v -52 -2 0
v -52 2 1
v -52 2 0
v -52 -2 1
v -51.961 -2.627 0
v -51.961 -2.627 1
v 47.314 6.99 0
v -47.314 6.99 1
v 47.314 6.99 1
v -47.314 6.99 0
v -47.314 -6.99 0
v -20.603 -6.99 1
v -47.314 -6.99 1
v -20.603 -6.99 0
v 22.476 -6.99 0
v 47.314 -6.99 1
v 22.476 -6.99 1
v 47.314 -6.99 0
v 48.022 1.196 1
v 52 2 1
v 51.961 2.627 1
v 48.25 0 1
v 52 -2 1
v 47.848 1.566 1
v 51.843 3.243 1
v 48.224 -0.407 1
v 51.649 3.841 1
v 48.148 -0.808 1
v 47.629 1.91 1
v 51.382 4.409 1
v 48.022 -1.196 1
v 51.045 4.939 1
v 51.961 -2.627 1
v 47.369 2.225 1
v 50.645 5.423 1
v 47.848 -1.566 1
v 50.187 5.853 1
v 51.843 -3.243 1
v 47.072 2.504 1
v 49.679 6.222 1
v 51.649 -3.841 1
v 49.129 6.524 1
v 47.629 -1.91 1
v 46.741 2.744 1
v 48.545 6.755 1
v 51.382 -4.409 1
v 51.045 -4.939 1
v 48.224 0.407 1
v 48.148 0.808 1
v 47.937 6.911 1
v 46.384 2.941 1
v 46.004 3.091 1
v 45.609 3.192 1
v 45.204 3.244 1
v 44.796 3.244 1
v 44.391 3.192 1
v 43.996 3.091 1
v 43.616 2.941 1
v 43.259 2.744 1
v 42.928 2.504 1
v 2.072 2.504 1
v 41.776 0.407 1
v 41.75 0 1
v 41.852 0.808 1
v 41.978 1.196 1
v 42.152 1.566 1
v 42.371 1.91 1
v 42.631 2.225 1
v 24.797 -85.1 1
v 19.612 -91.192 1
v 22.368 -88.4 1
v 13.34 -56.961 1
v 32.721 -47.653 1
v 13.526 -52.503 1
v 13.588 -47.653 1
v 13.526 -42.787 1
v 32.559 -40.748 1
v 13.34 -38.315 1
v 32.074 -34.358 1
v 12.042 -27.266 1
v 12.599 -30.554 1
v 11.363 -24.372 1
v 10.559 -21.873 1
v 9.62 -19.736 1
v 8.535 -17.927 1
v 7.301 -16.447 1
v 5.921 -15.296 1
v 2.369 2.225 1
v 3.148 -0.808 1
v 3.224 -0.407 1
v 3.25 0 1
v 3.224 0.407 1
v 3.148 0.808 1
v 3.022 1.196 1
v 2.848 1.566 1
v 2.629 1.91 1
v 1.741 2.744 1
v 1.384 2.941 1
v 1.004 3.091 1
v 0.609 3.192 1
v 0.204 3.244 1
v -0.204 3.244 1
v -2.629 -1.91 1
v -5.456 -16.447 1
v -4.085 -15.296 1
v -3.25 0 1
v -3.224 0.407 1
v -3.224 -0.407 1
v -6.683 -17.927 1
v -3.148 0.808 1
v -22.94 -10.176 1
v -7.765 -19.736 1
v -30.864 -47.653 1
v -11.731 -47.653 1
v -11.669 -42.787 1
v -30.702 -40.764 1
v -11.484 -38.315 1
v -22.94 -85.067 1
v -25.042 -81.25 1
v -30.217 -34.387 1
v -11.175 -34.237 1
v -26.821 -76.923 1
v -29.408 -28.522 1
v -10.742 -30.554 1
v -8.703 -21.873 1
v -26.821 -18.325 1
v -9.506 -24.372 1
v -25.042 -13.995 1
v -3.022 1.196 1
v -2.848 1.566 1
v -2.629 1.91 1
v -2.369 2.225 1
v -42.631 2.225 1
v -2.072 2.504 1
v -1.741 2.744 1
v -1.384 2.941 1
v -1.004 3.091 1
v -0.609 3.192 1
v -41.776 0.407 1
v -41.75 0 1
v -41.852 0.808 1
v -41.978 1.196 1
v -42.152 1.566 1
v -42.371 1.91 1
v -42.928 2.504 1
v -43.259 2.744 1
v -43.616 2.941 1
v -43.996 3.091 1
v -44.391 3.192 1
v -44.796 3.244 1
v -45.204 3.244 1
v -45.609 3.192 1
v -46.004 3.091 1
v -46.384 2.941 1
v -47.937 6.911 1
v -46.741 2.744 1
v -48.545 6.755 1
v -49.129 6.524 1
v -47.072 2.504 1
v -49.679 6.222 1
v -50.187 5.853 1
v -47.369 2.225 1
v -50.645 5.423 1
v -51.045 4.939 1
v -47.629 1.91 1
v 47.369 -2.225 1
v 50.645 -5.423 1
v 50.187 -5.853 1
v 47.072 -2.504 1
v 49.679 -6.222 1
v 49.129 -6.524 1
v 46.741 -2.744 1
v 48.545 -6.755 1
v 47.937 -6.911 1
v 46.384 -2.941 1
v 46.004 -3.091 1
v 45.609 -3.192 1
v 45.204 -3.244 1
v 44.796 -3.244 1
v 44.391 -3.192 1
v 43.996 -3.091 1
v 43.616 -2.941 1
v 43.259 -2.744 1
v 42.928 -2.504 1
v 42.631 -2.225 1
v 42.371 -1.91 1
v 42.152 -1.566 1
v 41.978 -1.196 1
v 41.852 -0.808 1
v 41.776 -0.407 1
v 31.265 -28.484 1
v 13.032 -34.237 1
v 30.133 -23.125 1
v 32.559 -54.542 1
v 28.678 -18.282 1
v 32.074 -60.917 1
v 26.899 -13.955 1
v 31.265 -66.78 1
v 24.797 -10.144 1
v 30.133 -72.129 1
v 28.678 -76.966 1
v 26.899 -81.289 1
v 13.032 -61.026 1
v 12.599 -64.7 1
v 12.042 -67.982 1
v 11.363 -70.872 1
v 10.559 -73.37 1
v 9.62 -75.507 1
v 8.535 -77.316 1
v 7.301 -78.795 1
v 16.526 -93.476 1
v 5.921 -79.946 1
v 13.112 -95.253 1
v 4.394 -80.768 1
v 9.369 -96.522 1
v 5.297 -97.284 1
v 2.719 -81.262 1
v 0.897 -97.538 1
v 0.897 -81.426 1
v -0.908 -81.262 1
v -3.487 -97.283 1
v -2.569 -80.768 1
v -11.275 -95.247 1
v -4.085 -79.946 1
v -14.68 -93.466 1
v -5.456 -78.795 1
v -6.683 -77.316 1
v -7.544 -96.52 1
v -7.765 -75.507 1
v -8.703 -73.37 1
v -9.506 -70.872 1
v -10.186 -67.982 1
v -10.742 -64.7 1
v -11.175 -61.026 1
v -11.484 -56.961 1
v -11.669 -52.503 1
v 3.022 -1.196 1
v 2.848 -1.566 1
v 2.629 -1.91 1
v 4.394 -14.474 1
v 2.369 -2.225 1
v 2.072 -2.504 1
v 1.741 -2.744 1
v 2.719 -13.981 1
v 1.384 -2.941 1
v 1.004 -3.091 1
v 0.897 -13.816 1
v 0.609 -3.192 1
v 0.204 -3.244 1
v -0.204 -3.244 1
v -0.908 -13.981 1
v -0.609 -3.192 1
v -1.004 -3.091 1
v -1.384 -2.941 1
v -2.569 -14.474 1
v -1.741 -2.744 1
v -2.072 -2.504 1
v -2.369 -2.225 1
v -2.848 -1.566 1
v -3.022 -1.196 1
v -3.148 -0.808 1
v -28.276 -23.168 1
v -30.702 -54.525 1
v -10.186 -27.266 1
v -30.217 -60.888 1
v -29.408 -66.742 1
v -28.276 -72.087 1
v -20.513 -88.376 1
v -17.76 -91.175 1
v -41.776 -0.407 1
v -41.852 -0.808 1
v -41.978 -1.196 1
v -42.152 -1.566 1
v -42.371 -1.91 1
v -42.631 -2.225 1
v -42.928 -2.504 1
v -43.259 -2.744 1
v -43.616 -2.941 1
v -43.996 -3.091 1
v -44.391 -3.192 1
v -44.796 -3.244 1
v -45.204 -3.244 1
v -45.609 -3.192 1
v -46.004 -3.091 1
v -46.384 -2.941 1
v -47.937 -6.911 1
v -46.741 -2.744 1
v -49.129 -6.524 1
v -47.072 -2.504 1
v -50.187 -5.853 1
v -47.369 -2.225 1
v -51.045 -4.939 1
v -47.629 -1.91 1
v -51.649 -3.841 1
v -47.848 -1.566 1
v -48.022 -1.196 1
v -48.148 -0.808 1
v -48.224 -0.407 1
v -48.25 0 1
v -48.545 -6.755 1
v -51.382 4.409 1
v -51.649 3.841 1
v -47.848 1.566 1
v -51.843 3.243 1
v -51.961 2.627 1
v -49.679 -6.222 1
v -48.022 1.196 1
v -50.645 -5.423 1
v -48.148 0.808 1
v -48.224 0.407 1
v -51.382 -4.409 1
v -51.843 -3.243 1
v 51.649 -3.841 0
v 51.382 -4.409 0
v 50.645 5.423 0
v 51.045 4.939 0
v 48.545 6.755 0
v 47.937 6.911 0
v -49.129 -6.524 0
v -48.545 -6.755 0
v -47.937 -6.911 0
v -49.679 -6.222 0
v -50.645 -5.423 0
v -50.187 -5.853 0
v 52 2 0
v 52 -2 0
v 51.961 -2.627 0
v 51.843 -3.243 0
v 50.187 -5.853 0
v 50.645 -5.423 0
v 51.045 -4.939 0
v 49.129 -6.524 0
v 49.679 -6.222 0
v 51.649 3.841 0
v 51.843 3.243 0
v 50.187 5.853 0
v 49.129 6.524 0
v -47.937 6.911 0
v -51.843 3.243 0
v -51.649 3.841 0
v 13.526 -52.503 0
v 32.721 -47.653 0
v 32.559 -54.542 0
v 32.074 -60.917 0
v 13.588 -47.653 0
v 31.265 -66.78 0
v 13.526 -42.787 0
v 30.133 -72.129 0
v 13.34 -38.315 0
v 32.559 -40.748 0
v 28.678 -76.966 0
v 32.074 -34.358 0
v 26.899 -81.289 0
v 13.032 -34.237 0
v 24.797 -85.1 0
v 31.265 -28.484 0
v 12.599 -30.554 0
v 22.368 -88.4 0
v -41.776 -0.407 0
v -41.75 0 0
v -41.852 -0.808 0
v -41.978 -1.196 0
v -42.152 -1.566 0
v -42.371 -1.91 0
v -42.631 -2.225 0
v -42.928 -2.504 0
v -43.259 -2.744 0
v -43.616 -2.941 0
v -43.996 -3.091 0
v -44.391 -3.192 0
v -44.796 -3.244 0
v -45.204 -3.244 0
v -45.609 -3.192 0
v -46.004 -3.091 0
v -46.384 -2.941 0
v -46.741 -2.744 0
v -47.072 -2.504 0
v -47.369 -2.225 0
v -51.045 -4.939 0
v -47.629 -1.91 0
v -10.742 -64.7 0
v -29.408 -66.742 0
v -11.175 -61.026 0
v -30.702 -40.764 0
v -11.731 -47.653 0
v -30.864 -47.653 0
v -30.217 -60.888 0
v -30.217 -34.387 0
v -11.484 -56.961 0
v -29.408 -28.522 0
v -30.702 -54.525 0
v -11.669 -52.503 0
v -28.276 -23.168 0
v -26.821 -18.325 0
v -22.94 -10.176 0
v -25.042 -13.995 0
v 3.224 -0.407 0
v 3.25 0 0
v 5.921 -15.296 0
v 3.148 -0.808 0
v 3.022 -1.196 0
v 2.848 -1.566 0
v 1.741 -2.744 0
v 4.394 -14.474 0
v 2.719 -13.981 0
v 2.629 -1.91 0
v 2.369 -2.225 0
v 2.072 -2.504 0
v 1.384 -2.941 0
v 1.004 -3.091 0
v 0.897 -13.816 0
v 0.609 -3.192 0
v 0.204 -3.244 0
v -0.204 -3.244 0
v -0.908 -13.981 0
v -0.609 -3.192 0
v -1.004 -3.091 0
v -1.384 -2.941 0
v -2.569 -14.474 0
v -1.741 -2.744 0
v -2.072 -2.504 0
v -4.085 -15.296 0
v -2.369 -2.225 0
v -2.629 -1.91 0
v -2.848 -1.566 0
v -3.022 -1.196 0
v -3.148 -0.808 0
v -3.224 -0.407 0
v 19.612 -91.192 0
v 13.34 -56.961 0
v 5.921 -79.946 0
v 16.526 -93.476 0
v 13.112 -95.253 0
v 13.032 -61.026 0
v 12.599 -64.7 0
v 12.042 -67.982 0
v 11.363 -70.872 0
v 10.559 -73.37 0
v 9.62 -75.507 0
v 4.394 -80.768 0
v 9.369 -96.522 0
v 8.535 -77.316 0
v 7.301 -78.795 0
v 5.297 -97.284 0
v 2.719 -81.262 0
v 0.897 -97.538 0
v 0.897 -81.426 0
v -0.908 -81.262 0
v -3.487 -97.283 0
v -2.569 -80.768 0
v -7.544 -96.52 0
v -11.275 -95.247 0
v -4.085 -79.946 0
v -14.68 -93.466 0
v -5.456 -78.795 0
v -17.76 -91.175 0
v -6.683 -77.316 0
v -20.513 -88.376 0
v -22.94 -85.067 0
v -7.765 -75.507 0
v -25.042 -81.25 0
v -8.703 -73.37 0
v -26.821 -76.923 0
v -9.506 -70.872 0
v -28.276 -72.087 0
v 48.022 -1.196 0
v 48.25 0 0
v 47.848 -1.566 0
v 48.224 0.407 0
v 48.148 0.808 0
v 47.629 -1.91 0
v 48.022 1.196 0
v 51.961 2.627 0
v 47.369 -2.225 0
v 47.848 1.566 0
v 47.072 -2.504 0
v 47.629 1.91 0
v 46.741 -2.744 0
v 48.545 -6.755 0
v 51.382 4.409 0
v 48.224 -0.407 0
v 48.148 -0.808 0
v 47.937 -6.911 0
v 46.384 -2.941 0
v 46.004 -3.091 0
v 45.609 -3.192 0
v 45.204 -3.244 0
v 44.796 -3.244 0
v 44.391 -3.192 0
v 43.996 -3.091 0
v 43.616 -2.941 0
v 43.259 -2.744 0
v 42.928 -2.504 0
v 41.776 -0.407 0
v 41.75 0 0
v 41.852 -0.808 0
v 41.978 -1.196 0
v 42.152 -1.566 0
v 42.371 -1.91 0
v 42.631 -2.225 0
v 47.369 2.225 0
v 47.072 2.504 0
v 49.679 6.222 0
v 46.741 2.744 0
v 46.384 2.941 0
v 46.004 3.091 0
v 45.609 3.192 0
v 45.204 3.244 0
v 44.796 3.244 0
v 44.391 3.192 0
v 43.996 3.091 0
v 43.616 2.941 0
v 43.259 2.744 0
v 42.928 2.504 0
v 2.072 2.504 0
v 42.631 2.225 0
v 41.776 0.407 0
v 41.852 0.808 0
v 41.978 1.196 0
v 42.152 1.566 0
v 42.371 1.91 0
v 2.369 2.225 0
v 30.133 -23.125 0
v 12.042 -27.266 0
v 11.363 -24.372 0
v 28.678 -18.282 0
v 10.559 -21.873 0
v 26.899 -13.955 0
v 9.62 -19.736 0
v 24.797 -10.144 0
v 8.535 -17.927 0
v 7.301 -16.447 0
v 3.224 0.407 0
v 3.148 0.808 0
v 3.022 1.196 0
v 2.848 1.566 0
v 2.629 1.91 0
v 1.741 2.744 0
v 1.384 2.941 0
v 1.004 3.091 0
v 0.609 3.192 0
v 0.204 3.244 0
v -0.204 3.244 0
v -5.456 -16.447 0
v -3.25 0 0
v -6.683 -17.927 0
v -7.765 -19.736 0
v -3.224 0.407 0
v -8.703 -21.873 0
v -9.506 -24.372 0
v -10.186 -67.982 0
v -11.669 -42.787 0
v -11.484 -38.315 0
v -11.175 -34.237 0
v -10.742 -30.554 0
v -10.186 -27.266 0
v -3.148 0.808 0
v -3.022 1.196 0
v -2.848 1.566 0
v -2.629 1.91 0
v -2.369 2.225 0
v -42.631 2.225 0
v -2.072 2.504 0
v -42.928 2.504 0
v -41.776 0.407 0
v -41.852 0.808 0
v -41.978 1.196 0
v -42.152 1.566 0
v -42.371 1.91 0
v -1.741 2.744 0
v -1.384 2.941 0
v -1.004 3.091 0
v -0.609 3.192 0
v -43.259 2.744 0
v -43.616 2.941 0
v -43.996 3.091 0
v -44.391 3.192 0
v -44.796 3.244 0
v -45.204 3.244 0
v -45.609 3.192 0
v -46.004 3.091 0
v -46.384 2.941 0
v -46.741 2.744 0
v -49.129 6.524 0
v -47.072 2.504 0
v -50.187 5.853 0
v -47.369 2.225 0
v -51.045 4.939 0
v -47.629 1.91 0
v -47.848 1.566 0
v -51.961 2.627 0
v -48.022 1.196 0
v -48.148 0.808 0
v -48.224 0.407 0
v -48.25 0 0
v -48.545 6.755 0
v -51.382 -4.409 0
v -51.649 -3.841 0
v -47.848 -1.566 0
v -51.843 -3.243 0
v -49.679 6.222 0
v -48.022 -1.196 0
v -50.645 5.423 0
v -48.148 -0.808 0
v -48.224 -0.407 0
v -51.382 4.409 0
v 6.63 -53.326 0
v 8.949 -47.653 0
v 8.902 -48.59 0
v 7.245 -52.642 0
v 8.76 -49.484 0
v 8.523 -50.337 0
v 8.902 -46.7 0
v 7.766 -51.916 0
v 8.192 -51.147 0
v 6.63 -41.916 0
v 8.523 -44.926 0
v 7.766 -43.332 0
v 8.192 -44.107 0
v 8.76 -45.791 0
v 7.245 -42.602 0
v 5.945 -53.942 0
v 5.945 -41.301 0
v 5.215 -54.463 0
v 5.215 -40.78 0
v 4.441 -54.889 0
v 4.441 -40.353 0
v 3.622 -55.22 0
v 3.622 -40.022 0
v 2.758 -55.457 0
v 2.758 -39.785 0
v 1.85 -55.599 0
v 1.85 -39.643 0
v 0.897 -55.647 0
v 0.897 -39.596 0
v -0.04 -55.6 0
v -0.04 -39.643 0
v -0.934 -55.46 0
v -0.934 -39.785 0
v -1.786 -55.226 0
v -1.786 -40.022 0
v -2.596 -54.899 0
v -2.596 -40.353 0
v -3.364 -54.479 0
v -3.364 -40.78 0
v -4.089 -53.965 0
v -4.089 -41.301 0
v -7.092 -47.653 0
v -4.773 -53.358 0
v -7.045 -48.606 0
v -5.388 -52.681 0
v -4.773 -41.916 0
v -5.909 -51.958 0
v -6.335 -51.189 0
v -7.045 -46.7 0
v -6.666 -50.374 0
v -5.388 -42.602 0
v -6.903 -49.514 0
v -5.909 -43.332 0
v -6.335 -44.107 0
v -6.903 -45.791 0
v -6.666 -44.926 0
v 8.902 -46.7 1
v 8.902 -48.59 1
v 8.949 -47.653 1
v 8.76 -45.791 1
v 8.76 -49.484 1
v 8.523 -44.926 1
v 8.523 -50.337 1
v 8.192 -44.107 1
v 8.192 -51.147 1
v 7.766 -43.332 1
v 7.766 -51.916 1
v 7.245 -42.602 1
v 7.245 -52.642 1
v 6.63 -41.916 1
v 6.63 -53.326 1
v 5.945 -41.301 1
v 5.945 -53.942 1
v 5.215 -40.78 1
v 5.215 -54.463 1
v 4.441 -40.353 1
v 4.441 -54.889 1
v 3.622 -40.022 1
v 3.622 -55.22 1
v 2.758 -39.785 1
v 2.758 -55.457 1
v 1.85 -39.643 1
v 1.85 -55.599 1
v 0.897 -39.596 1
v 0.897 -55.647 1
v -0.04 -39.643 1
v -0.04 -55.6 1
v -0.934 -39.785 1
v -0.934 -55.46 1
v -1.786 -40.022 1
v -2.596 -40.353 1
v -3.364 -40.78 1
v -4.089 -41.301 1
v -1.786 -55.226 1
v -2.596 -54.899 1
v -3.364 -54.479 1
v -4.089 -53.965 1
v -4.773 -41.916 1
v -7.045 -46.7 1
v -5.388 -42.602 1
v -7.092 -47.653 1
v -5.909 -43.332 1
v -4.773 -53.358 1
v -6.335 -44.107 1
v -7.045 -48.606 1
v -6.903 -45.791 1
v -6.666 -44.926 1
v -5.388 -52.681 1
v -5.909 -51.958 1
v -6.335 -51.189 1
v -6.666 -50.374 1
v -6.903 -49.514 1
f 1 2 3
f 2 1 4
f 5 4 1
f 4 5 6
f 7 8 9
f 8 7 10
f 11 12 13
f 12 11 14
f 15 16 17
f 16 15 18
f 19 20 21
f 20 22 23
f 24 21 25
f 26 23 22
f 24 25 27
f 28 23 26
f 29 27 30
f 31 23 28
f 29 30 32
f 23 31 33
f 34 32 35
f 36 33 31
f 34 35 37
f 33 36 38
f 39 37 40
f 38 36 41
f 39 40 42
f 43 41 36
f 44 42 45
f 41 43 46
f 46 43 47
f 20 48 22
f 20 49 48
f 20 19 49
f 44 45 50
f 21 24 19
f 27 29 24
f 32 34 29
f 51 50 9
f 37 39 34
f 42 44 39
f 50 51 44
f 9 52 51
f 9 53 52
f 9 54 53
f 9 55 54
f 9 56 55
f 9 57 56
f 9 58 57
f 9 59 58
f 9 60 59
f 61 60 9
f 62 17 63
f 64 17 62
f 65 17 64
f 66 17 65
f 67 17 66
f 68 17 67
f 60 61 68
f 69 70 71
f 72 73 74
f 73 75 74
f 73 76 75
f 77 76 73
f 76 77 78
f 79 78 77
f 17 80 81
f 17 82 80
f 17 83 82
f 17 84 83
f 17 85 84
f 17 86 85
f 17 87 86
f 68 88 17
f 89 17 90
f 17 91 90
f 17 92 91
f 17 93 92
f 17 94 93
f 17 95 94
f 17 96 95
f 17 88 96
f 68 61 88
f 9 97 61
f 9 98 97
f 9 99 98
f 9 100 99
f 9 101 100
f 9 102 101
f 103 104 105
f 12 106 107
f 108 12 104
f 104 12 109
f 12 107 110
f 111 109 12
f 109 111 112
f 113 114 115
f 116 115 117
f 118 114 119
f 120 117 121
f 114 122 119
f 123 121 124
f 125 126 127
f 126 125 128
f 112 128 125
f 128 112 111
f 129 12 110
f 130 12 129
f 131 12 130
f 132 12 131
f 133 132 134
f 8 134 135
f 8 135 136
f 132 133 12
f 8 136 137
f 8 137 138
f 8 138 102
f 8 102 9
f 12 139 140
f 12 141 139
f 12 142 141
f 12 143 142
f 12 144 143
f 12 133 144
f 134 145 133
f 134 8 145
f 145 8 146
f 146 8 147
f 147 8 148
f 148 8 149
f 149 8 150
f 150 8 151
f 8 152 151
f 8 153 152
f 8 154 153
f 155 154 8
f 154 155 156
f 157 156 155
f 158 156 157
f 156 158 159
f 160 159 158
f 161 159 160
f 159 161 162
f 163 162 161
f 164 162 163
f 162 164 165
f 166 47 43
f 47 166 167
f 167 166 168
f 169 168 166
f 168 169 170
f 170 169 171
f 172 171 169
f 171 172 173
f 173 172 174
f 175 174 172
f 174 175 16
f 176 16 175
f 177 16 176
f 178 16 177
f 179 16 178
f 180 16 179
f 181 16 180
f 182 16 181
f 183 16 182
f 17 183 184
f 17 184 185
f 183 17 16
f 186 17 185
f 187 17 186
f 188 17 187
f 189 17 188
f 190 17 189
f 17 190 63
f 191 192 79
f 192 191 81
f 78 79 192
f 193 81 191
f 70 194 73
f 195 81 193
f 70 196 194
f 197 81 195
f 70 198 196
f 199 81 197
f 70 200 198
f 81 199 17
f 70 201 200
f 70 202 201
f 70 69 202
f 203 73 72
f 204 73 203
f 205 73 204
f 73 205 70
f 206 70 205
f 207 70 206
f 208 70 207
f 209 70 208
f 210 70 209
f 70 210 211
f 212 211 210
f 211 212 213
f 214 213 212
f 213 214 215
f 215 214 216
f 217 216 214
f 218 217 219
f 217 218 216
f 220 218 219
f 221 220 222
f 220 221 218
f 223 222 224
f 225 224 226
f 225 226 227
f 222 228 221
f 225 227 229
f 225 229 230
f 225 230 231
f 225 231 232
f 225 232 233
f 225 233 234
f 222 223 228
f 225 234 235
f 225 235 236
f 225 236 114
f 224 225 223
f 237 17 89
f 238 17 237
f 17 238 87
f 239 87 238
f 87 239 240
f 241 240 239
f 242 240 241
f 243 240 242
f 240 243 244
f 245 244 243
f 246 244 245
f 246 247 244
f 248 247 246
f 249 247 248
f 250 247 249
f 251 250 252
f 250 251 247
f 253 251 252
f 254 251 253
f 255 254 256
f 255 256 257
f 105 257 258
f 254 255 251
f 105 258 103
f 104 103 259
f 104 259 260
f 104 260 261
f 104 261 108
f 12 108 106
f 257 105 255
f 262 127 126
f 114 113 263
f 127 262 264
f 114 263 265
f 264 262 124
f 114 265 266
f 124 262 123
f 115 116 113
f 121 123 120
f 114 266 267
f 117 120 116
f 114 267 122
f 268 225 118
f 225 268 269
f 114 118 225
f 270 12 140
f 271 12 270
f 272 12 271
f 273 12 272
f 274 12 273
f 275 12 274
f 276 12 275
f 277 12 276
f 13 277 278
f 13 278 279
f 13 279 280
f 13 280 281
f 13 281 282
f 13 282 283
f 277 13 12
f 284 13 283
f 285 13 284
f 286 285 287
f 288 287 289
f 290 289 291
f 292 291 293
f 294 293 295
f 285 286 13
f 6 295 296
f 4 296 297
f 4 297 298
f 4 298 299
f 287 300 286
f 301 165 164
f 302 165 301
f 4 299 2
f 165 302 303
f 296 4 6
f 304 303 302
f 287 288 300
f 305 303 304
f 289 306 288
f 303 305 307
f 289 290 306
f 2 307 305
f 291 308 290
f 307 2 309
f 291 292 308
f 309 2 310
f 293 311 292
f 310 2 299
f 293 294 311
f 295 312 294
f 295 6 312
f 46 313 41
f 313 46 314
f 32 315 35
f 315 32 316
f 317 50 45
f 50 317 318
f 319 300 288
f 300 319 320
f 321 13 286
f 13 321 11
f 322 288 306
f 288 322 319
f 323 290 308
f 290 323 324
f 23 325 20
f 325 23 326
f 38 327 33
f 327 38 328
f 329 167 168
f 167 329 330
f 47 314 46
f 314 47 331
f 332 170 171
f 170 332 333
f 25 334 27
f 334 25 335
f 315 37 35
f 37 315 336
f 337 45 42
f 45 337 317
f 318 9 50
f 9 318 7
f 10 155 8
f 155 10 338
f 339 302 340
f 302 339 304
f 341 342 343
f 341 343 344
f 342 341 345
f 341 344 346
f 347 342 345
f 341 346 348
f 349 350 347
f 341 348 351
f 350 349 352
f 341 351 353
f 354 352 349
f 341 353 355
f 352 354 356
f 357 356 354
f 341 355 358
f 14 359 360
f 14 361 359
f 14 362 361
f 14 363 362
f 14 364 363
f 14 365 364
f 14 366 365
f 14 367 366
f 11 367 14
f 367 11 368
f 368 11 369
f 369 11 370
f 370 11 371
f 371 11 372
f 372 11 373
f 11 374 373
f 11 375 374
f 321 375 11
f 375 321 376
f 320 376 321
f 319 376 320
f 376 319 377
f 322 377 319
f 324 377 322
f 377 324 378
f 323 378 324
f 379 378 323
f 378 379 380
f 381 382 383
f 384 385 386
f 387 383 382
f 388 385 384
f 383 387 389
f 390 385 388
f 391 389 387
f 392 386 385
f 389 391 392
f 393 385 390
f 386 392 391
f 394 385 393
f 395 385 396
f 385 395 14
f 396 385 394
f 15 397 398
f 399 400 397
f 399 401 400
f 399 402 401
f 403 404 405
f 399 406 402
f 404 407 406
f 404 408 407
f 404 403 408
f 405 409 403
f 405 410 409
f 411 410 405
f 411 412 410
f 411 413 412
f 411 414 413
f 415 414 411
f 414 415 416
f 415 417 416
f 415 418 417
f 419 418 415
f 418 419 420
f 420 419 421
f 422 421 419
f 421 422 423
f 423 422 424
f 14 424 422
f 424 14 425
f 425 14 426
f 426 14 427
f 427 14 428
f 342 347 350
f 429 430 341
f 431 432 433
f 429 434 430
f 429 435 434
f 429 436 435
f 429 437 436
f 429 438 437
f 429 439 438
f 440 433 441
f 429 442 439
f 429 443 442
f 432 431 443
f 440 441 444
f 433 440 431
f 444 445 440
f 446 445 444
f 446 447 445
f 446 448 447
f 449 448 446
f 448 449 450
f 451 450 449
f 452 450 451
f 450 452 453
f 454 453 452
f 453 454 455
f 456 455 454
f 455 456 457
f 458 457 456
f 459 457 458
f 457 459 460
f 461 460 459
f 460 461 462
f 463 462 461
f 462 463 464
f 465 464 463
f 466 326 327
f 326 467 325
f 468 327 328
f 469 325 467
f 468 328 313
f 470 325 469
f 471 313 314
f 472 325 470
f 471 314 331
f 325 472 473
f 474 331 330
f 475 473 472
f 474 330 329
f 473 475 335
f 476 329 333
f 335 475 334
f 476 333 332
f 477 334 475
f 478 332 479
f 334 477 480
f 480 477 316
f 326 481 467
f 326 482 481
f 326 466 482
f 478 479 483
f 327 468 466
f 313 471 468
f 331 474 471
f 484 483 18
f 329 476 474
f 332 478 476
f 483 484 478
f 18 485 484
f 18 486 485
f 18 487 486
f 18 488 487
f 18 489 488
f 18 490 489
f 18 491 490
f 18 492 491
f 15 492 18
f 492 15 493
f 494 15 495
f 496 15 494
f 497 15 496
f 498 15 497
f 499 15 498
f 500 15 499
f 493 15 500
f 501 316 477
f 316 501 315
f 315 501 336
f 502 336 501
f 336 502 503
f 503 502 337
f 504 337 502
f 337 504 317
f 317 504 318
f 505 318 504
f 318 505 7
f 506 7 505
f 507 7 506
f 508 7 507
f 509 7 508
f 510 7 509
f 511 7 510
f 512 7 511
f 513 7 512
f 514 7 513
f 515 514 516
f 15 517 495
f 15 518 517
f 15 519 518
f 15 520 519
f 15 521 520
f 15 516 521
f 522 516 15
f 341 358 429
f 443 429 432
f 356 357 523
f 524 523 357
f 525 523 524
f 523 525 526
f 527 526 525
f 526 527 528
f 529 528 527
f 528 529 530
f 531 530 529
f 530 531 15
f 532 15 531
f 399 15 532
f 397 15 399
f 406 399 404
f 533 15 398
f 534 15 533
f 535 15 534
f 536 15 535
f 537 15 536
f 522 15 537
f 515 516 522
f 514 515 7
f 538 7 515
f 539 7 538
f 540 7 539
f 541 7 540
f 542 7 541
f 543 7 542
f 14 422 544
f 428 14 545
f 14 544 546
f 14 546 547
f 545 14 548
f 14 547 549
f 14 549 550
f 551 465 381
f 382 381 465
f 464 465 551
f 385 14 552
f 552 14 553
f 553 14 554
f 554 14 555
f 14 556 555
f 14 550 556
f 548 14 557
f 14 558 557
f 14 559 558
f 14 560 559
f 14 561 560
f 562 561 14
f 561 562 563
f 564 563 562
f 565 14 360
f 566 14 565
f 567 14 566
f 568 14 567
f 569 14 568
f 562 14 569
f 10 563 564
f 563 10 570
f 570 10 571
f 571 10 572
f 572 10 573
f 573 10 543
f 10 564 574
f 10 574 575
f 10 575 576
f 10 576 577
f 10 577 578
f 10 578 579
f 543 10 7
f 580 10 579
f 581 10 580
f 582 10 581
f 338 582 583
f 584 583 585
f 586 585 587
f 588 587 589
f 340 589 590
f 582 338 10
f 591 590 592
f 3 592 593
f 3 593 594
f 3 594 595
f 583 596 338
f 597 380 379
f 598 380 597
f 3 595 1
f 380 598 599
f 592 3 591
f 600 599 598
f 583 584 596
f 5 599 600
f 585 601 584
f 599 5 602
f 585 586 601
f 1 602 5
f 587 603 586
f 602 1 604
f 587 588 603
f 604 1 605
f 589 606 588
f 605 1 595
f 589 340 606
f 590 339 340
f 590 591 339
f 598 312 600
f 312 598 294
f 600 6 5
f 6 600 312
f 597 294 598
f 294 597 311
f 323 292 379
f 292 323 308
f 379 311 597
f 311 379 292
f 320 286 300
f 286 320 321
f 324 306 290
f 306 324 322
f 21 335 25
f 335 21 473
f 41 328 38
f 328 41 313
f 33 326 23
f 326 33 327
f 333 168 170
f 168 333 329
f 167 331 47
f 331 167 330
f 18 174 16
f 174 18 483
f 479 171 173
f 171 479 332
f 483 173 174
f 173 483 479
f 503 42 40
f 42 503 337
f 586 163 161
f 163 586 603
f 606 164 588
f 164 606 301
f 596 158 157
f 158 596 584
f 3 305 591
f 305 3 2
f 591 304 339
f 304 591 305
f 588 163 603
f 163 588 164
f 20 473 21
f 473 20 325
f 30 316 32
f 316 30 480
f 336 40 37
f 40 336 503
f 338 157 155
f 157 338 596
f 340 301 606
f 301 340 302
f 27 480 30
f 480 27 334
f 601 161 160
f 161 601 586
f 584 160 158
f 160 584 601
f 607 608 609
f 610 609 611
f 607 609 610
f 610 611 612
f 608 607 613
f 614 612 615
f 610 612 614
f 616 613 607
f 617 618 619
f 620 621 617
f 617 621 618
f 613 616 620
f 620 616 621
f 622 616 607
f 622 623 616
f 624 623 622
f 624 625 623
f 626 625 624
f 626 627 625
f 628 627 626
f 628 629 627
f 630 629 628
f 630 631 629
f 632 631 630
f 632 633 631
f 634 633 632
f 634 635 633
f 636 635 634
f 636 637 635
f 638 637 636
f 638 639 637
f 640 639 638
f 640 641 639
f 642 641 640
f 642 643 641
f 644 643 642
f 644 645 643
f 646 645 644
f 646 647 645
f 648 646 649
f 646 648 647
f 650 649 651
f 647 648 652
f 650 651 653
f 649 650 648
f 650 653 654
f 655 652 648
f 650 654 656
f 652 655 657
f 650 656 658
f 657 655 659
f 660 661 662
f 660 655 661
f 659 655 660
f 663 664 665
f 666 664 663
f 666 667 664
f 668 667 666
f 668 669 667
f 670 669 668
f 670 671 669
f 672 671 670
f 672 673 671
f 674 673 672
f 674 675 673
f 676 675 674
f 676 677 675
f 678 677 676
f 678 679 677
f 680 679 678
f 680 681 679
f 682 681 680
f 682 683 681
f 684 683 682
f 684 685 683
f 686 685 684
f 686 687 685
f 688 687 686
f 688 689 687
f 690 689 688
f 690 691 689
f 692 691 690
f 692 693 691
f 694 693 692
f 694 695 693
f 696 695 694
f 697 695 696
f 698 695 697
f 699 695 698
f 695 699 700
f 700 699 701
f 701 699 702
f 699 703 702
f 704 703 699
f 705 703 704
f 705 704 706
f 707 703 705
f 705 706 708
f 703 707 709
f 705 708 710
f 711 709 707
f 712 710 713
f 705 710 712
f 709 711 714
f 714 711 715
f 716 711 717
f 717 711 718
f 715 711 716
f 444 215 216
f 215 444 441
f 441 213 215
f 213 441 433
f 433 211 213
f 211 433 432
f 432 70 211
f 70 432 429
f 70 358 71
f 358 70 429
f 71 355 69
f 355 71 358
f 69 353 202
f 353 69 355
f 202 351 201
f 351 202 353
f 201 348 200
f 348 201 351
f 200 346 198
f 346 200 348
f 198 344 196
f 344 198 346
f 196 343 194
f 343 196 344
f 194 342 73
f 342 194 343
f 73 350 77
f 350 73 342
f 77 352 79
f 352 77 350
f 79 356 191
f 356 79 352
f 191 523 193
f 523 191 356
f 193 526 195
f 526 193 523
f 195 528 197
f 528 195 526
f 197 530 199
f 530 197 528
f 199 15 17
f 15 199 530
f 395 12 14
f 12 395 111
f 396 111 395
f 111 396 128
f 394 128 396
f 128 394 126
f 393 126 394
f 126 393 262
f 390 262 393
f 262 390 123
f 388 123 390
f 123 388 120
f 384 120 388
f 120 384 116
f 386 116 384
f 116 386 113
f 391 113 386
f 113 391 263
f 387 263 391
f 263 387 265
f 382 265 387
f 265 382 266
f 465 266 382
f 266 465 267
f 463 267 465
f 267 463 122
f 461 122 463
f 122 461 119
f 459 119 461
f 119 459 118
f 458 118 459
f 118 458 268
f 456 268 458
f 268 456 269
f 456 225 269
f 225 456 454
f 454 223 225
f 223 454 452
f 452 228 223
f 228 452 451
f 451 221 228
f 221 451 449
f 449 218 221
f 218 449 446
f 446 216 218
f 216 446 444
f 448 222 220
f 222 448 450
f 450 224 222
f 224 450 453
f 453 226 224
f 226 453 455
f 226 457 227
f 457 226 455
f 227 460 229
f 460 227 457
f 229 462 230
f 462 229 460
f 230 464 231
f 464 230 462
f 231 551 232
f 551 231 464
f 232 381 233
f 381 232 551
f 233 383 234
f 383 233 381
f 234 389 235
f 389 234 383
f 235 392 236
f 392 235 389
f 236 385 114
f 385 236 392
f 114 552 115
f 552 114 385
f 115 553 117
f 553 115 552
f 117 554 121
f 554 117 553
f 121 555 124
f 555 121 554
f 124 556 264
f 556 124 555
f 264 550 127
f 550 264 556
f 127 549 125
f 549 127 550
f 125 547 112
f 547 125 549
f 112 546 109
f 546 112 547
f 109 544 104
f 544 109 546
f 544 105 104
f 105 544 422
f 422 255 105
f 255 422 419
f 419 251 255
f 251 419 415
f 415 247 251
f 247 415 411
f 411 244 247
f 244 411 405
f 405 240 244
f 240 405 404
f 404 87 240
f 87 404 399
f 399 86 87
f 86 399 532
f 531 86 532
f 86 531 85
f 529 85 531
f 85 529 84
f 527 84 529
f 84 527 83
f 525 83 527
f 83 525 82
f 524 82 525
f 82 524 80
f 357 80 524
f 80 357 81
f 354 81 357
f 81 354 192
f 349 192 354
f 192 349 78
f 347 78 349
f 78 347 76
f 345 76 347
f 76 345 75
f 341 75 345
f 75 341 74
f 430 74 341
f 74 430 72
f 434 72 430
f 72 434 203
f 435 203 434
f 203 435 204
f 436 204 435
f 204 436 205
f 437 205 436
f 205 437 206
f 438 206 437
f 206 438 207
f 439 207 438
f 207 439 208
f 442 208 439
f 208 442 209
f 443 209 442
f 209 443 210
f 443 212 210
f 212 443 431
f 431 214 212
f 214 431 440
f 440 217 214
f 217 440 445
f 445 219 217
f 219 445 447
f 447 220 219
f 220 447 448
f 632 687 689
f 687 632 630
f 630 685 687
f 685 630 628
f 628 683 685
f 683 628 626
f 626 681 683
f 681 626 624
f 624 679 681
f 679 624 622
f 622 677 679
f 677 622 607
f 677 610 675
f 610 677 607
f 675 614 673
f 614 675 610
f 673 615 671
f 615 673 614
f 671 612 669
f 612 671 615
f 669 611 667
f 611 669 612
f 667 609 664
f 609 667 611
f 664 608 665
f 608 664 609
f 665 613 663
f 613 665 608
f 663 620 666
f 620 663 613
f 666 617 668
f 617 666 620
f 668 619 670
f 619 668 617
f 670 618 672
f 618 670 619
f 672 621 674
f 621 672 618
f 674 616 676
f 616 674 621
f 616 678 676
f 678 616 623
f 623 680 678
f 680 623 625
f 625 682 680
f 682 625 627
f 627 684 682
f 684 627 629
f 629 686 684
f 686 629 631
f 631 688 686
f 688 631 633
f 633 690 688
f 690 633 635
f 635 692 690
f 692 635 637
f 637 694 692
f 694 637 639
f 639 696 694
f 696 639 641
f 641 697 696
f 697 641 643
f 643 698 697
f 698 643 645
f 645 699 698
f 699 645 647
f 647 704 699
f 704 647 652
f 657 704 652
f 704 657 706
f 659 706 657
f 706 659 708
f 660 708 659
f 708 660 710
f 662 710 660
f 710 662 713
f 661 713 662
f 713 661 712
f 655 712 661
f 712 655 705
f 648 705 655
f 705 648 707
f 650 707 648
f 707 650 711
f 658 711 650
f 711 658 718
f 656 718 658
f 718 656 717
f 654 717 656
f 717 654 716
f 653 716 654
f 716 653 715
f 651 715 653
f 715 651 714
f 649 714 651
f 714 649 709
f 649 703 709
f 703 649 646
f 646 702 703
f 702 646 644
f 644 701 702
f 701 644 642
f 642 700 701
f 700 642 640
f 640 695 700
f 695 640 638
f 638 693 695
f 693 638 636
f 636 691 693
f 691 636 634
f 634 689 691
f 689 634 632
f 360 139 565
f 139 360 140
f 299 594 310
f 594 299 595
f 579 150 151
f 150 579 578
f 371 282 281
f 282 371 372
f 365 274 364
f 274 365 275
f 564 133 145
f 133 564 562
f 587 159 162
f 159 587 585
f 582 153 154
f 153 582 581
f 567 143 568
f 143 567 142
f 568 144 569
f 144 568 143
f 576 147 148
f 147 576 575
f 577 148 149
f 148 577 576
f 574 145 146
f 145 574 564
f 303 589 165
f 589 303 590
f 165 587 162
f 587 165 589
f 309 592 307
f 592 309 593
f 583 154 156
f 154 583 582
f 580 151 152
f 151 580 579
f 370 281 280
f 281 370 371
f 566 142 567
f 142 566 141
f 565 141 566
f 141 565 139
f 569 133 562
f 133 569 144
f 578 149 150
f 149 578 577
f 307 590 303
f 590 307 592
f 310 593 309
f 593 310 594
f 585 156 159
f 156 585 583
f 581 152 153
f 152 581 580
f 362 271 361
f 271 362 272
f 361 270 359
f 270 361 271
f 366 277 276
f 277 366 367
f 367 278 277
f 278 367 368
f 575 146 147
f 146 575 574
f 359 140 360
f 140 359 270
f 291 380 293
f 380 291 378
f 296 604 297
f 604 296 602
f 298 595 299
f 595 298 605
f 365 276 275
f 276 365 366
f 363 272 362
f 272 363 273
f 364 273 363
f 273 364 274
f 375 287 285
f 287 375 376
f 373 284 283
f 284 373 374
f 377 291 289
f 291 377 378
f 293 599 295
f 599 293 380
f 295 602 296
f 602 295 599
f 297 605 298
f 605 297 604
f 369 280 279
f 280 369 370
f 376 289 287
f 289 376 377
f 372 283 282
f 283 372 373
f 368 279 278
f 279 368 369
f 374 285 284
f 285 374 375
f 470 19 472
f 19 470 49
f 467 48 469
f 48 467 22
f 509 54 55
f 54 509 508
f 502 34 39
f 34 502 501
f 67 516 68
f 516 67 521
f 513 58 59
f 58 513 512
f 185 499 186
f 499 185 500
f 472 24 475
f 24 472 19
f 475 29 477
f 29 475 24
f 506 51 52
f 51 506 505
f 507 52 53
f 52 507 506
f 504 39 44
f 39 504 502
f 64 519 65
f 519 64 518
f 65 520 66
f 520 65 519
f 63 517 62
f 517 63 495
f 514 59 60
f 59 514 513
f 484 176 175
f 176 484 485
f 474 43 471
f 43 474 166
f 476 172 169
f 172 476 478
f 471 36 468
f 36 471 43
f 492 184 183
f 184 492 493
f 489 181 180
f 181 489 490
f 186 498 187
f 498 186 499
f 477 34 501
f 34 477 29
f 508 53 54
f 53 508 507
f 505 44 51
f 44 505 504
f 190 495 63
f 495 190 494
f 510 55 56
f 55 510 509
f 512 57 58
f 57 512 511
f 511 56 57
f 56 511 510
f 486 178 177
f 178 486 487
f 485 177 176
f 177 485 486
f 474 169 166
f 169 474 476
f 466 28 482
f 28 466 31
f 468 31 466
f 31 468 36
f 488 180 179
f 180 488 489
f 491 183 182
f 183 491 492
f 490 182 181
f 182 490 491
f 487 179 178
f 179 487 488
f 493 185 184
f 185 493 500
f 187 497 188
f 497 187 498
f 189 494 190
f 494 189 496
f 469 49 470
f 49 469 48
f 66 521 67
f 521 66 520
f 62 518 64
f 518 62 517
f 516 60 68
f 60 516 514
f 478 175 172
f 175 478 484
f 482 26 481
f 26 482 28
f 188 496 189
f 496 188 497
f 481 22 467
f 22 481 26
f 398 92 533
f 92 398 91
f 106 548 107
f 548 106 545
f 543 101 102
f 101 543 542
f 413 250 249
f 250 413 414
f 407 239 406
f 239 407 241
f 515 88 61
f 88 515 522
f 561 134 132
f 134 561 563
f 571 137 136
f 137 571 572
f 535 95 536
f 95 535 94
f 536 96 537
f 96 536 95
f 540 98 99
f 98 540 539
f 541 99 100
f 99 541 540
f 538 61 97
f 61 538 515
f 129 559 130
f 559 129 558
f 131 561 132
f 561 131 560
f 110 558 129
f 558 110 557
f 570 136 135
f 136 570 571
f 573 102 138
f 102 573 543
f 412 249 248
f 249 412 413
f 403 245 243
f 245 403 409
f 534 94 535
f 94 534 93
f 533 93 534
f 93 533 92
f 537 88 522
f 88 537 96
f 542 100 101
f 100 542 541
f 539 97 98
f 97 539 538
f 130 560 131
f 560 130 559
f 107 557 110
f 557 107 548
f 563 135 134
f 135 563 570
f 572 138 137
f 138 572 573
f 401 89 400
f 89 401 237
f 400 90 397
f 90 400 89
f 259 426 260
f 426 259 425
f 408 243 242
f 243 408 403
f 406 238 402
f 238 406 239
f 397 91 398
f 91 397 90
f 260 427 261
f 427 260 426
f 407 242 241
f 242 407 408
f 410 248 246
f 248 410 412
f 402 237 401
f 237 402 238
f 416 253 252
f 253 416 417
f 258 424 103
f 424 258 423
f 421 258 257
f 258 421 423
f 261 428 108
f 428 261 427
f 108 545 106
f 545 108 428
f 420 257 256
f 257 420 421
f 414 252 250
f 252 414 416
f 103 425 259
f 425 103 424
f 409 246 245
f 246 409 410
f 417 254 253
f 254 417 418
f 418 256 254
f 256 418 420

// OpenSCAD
$fn = 50;


difference() {
	union() {
		translate(v = [0, 0, 0]) {
			rotate(a = [0, 0, 0]) {
				hull() {
					translate(v = [-47.0000000000, 2.0000000000, 0]) {
						rotate(a = [0, 0, 0]) {
							translate(v = [0, 0, 0]) {
								rotate(a = [0, 0, 0]) {
									cylinder(h = 1, r = 5);
								}
							}
						}
					}
					translate(v = [47.0000000000, 2.0000000000, 0]) {
						rotate(a = [0, 0, 0]) {
							translate(v = [0, 0, 0]) {
								rotate(a = [0, 0, 0]) {
									cylinder(h = 1, r = 5);
								}
							}
						}
					}
					translate(v = [-47.0000000000, -2.0000000000, 0]) {
						rotate(a = [0, 0, 0]) {
							translate(v = [0, 0, 0]) {
								rotate(a = [0, 0, 0]) {
									cylinder(h = 1, r = 5);
								}
							}
						}
					}
					translate(v = [47.0000000000, -2.0000000000, 0]) {
						rotate(a = [0, 0, 0]) {
							translate(v = [0, 0, 0]) {
								rotate(a = [0, 0, 0]) {
									cylinder(h = 1, r = 5);
								}
							}
						}
					}
				}
			}
		}
		translate(v = [0, 0, 0]) {
			rotate(a = [0, 0, 0]) {
				linear_extrude(height = 1) {
					text(font = "DejaVu Sans Mono:style=Bold", halign = "center", size = 95.0000000000, text = "0", valign = "top");
				}
			}
		}
	}
	union() {
		translate(v = [-45.0000000000, 0.0000000000, -125.0000000000]) {
			rotate(a = [0, 0, 0]) {
				cylinder(h = 250, r = 3.2500000000);
			}
		}
		translate(v = [45.0000000000, 0.0000000000, -125.0000000000]) {
			rotate(a = [0, 0, 0]) {
				cylinder(h = 250, r = 3.2500000000);
			}
		}
		translate(v = [45.0000000000, 0.0000000000, -125.0000000000]) {
			rotate(a = [0, 0, 0]) {
				cylinder(h = 250, r = 3.2500000000);
			}
		}
		translate(v = [0, 0, -125.0000000000]) {
			rotate(a = [0, 0, 0]) {
				cylinder(h = 250, r = 3.2500000000);
			}
		}
	}
}
